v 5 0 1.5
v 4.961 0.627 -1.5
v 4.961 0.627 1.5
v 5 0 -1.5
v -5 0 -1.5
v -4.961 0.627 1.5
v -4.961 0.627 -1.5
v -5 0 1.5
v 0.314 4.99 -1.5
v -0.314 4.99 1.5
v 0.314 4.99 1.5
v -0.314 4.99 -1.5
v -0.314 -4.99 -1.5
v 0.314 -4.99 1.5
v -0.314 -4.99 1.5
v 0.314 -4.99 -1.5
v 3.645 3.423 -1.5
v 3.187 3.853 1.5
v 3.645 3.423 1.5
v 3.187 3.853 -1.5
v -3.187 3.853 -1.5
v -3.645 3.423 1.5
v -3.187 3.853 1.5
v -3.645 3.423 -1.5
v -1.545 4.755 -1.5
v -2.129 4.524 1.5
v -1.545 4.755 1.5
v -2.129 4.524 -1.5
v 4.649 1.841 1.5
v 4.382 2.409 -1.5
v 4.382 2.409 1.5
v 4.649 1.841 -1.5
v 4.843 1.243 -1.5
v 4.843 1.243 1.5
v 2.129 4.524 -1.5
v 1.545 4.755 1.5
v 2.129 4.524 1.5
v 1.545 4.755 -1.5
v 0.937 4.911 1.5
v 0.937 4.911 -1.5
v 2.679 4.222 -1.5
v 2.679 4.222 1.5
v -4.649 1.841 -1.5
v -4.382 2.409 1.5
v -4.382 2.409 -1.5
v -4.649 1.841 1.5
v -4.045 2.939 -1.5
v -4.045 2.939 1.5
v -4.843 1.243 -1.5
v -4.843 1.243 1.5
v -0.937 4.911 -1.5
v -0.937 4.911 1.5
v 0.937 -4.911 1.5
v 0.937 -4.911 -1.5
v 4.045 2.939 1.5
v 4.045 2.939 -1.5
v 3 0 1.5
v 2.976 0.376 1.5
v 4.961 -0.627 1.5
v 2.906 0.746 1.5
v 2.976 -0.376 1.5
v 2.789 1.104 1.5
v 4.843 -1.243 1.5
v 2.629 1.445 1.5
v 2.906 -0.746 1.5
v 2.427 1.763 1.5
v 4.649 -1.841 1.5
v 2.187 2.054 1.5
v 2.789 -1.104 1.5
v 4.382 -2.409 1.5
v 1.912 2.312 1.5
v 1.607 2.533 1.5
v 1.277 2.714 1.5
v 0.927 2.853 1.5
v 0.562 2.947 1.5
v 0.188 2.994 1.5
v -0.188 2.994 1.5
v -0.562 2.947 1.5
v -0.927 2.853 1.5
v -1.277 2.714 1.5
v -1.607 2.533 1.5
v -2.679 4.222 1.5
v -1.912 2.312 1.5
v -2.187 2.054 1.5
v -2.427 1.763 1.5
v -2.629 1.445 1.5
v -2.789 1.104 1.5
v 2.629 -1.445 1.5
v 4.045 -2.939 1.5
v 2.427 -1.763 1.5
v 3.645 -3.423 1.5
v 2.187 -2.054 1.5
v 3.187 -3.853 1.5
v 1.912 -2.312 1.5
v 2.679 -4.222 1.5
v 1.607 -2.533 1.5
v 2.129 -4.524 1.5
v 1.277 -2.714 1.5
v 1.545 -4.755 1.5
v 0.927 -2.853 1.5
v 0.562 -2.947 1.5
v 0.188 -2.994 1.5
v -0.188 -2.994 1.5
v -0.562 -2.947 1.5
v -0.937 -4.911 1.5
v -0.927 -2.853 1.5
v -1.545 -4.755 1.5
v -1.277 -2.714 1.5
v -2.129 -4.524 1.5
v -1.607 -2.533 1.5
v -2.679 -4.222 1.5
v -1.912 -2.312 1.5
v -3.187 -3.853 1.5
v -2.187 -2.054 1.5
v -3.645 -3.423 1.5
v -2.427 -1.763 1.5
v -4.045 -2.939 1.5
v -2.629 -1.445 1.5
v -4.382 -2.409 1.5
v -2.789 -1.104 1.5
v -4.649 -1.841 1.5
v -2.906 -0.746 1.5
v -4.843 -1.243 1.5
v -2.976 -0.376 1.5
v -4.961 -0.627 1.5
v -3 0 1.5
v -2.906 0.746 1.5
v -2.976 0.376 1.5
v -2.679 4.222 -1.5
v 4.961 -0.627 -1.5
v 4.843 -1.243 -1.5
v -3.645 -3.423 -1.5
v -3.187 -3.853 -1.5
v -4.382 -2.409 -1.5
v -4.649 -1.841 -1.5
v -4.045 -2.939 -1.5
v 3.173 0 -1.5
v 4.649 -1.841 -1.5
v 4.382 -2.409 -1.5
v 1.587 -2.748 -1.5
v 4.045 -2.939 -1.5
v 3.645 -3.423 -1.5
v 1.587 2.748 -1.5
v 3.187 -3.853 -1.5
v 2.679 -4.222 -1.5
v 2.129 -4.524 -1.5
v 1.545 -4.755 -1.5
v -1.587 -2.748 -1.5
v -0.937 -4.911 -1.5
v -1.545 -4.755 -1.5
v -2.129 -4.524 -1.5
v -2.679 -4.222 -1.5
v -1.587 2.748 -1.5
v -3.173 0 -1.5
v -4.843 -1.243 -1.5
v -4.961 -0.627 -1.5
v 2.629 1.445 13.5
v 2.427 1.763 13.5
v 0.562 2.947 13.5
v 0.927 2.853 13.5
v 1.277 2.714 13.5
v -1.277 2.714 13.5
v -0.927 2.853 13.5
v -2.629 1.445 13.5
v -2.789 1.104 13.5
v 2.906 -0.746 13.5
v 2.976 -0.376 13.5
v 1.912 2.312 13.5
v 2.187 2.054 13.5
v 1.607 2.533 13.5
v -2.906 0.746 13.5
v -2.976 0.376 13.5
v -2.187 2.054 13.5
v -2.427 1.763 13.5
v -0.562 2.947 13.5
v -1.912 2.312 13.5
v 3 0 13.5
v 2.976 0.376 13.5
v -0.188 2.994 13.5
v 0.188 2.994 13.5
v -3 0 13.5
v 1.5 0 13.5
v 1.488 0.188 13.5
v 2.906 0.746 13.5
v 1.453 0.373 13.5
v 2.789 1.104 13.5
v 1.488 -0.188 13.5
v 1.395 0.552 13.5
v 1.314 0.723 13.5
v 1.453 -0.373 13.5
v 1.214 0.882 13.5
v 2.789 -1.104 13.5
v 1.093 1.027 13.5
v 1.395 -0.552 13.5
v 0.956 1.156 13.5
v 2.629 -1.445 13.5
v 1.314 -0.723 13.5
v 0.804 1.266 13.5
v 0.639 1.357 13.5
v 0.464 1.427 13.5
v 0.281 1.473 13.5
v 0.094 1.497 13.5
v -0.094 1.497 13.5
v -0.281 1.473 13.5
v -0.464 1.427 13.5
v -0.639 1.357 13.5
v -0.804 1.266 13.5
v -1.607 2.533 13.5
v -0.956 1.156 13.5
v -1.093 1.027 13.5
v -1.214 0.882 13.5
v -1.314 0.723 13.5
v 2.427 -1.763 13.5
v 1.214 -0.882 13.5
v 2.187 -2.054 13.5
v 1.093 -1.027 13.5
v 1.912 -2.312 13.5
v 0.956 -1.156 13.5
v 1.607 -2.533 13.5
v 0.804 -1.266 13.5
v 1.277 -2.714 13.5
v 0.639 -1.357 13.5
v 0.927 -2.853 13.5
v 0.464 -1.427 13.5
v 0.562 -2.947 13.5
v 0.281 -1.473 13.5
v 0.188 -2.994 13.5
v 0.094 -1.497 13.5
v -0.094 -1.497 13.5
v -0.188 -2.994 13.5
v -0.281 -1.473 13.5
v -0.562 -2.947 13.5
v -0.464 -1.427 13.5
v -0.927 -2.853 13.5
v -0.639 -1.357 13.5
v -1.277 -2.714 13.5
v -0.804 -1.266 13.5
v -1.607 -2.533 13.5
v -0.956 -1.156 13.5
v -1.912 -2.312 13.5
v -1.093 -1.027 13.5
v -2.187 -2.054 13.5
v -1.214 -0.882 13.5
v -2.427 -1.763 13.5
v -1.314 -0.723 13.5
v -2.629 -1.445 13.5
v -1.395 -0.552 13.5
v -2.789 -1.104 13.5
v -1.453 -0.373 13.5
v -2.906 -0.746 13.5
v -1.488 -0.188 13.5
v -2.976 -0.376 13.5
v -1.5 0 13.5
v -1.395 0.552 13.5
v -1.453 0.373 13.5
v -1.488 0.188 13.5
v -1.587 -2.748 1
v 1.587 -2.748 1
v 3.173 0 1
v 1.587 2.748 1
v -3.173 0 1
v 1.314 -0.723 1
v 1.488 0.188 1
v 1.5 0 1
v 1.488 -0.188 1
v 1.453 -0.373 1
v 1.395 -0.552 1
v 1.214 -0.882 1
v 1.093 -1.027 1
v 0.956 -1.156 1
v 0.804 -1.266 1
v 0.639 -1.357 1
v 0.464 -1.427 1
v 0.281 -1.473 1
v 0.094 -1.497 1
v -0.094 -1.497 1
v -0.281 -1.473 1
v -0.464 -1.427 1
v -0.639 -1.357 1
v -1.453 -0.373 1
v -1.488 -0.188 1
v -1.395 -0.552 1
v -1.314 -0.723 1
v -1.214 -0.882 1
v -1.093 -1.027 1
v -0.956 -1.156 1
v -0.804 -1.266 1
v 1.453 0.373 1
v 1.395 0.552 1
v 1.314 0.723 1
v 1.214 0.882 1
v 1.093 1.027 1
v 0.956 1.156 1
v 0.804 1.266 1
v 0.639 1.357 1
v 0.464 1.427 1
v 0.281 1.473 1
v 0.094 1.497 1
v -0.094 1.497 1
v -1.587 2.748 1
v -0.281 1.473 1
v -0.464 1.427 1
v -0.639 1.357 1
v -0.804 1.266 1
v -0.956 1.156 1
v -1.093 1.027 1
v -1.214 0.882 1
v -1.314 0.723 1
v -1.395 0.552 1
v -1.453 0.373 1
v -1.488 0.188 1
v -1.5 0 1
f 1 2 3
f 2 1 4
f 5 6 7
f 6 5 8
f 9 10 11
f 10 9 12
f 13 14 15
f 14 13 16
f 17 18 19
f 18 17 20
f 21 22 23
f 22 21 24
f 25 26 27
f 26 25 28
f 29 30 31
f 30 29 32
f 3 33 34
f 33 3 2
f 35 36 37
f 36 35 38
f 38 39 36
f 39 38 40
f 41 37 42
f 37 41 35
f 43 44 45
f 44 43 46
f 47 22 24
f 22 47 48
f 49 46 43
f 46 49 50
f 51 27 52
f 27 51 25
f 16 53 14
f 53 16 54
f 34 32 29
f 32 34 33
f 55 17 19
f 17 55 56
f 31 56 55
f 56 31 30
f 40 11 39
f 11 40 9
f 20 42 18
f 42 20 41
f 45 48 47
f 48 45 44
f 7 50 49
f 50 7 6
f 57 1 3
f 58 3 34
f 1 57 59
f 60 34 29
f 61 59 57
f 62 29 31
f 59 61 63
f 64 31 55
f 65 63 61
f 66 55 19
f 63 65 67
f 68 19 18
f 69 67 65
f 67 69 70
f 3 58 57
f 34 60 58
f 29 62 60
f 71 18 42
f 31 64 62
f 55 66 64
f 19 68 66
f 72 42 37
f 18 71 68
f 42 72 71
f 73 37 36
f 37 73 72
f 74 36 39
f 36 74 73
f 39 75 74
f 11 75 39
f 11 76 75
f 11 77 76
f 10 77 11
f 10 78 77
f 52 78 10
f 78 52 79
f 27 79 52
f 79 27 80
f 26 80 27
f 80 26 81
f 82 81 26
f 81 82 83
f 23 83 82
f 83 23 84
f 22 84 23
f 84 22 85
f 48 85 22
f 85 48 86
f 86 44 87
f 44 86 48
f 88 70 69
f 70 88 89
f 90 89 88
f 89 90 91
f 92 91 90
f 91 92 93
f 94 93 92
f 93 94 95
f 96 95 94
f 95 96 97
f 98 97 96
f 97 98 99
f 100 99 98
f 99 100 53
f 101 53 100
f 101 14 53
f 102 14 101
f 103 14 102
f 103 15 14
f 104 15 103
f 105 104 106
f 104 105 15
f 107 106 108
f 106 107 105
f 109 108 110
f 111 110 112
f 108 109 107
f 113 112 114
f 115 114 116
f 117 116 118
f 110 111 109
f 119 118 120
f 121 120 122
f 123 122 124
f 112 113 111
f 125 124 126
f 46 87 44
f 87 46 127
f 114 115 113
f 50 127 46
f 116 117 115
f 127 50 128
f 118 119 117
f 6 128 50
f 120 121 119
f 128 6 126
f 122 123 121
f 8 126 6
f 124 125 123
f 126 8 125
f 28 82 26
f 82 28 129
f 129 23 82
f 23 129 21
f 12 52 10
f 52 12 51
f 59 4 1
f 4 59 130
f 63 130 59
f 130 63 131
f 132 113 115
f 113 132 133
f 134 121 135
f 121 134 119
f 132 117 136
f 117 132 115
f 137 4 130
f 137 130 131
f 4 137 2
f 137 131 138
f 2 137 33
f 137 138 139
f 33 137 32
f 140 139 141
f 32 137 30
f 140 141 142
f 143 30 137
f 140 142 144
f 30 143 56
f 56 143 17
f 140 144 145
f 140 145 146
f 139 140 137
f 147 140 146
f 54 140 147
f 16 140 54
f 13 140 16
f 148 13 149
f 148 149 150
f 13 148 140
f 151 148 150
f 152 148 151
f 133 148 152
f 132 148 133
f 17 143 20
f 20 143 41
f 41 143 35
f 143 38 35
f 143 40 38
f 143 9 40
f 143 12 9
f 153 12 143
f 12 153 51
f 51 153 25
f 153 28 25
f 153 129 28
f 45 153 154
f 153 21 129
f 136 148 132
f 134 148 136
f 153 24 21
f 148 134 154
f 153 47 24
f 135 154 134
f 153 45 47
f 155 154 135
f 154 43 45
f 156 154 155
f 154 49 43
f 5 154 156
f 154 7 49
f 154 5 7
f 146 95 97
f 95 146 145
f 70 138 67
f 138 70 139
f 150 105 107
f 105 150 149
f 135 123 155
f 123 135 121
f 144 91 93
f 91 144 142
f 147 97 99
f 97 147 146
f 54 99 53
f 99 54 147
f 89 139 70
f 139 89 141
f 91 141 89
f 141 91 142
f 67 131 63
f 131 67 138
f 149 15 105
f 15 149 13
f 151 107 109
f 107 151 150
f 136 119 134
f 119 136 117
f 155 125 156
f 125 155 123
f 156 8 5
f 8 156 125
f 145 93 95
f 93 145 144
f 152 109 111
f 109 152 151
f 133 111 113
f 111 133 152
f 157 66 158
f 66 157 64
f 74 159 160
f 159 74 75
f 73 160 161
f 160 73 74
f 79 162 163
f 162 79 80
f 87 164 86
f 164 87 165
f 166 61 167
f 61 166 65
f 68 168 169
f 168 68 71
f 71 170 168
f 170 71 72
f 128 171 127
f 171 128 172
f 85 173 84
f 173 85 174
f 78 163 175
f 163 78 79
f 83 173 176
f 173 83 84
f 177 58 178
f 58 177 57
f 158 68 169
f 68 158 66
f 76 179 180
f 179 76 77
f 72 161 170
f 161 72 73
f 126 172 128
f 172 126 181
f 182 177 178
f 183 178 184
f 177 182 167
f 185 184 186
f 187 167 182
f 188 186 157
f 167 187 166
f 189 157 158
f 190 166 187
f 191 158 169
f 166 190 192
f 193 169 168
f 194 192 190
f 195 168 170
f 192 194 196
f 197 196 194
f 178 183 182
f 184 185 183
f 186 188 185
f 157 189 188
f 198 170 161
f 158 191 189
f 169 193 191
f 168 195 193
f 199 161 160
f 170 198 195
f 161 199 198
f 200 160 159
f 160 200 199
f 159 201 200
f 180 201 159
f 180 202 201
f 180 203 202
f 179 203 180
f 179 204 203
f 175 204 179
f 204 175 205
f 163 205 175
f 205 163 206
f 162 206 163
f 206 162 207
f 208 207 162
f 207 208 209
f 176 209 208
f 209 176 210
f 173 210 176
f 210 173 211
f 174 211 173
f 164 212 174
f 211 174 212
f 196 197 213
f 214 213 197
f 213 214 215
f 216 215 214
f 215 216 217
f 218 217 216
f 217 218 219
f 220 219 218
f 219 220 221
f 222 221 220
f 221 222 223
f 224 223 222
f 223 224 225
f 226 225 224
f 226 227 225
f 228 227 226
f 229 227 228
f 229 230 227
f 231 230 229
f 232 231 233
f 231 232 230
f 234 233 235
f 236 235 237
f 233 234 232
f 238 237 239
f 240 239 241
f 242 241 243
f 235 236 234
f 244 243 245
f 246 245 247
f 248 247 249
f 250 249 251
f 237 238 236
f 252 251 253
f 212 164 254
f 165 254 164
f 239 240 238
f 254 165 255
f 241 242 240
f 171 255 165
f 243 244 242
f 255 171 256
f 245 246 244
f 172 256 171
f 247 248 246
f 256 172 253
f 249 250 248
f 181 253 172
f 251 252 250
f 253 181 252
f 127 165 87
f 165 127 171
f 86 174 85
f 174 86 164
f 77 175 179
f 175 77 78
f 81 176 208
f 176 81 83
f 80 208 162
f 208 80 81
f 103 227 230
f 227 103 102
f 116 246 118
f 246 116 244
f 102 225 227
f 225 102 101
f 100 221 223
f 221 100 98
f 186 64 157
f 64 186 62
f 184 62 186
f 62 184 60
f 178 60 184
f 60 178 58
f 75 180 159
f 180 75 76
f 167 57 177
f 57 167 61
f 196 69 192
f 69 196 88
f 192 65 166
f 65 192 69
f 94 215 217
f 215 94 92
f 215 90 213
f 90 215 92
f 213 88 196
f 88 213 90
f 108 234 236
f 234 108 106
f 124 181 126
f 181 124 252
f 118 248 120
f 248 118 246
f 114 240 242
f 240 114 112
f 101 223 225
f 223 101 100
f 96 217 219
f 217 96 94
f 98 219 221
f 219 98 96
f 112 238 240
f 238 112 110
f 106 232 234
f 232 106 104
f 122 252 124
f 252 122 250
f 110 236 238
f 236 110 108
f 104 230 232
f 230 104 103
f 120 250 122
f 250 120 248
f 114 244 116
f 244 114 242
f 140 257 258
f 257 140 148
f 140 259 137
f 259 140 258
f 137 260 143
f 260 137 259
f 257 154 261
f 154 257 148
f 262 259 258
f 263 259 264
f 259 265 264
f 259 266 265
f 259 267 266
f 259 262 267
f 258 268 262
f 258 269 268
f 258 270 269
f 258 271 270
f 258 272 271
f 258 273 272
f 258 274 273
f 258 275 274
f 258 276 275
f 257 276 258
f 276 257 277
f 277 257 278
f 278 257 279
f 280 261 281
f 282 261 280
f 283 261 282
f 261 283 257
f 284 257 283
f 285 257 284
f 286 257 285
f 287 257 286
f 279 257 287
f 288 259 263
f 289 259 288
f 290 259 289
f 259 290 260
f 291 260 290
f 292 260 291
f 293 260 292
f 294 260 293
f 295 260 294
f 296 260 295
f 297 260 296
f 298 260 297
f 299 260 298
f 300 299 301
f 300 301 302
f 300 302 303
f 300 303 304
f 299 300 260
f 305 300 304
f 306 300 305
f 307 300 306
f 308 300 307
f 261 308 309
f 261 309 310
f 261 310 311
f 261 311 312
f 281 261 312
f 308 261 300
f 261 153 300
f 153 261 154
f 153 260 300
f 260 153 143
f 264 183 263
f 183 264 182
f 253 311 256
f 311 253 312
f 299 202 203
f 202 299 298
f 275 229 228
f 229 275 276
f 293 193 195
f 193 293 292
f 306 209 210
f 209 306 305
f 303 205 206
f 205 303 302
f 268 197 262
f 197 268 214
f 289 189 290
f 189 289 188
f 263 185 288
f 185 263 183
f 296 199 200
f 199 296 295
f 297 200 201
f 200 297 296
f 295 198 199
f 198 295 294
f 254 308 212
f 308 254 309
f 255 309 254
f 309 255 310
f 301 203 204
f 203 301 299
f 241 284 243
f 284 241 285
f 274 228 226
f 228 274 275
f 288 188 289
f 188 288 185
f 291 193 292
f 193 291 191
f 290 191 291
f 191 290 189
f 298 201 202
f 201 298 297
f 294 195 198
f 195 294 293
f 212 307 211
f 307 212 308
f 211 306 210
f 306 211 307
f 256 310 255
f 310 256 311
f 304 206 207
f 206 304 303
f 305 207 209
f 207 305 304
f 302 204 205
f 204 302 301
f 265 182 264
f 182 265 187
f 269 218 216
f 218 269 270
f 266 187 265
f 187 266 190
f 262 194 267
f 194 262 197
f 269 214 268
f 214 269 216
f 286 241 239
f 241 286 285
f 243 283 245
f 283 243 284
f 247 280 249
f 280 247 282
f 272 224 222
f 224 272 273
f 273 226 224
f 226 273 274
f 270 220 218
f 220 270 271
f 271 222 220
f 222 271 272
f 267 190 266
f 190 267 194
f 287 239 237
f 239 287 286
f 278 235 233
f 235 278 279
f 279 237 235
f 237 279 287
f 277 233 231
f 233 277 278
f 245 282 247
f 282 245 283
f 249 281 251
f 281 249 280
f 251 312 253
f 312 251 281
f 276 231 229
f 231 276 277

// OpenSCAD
$fn = 50;


difference() {
	union() {
		translate(v = [0, 0, -1.5000000000]) {
			cylinder(h = 3, r = 5.0000000000);
		}
		translate(v = [0, 0, -1.5000000000]) {
			cylinder(h = 15, r = 3.0000000000);
		}
	}
	union() {
		translate(v = [0, 0, -1.5000000000]) {
			rotate(a = [0, 0, 0]) {
				difference() {
					union() {
						linear_extrude(height = 2.5000000000) {
							polygon(points = [[3.1735000000, 0.0000000000], [1.5867500000, 2.7483316189], [-1.5867500000, 2.7483316189], [-3.1735000000, 0.0000000000], [-1.5867500000, -2.7483316189], [1.5867500000, -2.7483316189]]);
						}
					}
					union();
				}
			}
		}
		translate(v = [0, 0, -50.0000000000]) {
			cylinder(h = 100, r = 1.5000000000);
		}
	}
}
